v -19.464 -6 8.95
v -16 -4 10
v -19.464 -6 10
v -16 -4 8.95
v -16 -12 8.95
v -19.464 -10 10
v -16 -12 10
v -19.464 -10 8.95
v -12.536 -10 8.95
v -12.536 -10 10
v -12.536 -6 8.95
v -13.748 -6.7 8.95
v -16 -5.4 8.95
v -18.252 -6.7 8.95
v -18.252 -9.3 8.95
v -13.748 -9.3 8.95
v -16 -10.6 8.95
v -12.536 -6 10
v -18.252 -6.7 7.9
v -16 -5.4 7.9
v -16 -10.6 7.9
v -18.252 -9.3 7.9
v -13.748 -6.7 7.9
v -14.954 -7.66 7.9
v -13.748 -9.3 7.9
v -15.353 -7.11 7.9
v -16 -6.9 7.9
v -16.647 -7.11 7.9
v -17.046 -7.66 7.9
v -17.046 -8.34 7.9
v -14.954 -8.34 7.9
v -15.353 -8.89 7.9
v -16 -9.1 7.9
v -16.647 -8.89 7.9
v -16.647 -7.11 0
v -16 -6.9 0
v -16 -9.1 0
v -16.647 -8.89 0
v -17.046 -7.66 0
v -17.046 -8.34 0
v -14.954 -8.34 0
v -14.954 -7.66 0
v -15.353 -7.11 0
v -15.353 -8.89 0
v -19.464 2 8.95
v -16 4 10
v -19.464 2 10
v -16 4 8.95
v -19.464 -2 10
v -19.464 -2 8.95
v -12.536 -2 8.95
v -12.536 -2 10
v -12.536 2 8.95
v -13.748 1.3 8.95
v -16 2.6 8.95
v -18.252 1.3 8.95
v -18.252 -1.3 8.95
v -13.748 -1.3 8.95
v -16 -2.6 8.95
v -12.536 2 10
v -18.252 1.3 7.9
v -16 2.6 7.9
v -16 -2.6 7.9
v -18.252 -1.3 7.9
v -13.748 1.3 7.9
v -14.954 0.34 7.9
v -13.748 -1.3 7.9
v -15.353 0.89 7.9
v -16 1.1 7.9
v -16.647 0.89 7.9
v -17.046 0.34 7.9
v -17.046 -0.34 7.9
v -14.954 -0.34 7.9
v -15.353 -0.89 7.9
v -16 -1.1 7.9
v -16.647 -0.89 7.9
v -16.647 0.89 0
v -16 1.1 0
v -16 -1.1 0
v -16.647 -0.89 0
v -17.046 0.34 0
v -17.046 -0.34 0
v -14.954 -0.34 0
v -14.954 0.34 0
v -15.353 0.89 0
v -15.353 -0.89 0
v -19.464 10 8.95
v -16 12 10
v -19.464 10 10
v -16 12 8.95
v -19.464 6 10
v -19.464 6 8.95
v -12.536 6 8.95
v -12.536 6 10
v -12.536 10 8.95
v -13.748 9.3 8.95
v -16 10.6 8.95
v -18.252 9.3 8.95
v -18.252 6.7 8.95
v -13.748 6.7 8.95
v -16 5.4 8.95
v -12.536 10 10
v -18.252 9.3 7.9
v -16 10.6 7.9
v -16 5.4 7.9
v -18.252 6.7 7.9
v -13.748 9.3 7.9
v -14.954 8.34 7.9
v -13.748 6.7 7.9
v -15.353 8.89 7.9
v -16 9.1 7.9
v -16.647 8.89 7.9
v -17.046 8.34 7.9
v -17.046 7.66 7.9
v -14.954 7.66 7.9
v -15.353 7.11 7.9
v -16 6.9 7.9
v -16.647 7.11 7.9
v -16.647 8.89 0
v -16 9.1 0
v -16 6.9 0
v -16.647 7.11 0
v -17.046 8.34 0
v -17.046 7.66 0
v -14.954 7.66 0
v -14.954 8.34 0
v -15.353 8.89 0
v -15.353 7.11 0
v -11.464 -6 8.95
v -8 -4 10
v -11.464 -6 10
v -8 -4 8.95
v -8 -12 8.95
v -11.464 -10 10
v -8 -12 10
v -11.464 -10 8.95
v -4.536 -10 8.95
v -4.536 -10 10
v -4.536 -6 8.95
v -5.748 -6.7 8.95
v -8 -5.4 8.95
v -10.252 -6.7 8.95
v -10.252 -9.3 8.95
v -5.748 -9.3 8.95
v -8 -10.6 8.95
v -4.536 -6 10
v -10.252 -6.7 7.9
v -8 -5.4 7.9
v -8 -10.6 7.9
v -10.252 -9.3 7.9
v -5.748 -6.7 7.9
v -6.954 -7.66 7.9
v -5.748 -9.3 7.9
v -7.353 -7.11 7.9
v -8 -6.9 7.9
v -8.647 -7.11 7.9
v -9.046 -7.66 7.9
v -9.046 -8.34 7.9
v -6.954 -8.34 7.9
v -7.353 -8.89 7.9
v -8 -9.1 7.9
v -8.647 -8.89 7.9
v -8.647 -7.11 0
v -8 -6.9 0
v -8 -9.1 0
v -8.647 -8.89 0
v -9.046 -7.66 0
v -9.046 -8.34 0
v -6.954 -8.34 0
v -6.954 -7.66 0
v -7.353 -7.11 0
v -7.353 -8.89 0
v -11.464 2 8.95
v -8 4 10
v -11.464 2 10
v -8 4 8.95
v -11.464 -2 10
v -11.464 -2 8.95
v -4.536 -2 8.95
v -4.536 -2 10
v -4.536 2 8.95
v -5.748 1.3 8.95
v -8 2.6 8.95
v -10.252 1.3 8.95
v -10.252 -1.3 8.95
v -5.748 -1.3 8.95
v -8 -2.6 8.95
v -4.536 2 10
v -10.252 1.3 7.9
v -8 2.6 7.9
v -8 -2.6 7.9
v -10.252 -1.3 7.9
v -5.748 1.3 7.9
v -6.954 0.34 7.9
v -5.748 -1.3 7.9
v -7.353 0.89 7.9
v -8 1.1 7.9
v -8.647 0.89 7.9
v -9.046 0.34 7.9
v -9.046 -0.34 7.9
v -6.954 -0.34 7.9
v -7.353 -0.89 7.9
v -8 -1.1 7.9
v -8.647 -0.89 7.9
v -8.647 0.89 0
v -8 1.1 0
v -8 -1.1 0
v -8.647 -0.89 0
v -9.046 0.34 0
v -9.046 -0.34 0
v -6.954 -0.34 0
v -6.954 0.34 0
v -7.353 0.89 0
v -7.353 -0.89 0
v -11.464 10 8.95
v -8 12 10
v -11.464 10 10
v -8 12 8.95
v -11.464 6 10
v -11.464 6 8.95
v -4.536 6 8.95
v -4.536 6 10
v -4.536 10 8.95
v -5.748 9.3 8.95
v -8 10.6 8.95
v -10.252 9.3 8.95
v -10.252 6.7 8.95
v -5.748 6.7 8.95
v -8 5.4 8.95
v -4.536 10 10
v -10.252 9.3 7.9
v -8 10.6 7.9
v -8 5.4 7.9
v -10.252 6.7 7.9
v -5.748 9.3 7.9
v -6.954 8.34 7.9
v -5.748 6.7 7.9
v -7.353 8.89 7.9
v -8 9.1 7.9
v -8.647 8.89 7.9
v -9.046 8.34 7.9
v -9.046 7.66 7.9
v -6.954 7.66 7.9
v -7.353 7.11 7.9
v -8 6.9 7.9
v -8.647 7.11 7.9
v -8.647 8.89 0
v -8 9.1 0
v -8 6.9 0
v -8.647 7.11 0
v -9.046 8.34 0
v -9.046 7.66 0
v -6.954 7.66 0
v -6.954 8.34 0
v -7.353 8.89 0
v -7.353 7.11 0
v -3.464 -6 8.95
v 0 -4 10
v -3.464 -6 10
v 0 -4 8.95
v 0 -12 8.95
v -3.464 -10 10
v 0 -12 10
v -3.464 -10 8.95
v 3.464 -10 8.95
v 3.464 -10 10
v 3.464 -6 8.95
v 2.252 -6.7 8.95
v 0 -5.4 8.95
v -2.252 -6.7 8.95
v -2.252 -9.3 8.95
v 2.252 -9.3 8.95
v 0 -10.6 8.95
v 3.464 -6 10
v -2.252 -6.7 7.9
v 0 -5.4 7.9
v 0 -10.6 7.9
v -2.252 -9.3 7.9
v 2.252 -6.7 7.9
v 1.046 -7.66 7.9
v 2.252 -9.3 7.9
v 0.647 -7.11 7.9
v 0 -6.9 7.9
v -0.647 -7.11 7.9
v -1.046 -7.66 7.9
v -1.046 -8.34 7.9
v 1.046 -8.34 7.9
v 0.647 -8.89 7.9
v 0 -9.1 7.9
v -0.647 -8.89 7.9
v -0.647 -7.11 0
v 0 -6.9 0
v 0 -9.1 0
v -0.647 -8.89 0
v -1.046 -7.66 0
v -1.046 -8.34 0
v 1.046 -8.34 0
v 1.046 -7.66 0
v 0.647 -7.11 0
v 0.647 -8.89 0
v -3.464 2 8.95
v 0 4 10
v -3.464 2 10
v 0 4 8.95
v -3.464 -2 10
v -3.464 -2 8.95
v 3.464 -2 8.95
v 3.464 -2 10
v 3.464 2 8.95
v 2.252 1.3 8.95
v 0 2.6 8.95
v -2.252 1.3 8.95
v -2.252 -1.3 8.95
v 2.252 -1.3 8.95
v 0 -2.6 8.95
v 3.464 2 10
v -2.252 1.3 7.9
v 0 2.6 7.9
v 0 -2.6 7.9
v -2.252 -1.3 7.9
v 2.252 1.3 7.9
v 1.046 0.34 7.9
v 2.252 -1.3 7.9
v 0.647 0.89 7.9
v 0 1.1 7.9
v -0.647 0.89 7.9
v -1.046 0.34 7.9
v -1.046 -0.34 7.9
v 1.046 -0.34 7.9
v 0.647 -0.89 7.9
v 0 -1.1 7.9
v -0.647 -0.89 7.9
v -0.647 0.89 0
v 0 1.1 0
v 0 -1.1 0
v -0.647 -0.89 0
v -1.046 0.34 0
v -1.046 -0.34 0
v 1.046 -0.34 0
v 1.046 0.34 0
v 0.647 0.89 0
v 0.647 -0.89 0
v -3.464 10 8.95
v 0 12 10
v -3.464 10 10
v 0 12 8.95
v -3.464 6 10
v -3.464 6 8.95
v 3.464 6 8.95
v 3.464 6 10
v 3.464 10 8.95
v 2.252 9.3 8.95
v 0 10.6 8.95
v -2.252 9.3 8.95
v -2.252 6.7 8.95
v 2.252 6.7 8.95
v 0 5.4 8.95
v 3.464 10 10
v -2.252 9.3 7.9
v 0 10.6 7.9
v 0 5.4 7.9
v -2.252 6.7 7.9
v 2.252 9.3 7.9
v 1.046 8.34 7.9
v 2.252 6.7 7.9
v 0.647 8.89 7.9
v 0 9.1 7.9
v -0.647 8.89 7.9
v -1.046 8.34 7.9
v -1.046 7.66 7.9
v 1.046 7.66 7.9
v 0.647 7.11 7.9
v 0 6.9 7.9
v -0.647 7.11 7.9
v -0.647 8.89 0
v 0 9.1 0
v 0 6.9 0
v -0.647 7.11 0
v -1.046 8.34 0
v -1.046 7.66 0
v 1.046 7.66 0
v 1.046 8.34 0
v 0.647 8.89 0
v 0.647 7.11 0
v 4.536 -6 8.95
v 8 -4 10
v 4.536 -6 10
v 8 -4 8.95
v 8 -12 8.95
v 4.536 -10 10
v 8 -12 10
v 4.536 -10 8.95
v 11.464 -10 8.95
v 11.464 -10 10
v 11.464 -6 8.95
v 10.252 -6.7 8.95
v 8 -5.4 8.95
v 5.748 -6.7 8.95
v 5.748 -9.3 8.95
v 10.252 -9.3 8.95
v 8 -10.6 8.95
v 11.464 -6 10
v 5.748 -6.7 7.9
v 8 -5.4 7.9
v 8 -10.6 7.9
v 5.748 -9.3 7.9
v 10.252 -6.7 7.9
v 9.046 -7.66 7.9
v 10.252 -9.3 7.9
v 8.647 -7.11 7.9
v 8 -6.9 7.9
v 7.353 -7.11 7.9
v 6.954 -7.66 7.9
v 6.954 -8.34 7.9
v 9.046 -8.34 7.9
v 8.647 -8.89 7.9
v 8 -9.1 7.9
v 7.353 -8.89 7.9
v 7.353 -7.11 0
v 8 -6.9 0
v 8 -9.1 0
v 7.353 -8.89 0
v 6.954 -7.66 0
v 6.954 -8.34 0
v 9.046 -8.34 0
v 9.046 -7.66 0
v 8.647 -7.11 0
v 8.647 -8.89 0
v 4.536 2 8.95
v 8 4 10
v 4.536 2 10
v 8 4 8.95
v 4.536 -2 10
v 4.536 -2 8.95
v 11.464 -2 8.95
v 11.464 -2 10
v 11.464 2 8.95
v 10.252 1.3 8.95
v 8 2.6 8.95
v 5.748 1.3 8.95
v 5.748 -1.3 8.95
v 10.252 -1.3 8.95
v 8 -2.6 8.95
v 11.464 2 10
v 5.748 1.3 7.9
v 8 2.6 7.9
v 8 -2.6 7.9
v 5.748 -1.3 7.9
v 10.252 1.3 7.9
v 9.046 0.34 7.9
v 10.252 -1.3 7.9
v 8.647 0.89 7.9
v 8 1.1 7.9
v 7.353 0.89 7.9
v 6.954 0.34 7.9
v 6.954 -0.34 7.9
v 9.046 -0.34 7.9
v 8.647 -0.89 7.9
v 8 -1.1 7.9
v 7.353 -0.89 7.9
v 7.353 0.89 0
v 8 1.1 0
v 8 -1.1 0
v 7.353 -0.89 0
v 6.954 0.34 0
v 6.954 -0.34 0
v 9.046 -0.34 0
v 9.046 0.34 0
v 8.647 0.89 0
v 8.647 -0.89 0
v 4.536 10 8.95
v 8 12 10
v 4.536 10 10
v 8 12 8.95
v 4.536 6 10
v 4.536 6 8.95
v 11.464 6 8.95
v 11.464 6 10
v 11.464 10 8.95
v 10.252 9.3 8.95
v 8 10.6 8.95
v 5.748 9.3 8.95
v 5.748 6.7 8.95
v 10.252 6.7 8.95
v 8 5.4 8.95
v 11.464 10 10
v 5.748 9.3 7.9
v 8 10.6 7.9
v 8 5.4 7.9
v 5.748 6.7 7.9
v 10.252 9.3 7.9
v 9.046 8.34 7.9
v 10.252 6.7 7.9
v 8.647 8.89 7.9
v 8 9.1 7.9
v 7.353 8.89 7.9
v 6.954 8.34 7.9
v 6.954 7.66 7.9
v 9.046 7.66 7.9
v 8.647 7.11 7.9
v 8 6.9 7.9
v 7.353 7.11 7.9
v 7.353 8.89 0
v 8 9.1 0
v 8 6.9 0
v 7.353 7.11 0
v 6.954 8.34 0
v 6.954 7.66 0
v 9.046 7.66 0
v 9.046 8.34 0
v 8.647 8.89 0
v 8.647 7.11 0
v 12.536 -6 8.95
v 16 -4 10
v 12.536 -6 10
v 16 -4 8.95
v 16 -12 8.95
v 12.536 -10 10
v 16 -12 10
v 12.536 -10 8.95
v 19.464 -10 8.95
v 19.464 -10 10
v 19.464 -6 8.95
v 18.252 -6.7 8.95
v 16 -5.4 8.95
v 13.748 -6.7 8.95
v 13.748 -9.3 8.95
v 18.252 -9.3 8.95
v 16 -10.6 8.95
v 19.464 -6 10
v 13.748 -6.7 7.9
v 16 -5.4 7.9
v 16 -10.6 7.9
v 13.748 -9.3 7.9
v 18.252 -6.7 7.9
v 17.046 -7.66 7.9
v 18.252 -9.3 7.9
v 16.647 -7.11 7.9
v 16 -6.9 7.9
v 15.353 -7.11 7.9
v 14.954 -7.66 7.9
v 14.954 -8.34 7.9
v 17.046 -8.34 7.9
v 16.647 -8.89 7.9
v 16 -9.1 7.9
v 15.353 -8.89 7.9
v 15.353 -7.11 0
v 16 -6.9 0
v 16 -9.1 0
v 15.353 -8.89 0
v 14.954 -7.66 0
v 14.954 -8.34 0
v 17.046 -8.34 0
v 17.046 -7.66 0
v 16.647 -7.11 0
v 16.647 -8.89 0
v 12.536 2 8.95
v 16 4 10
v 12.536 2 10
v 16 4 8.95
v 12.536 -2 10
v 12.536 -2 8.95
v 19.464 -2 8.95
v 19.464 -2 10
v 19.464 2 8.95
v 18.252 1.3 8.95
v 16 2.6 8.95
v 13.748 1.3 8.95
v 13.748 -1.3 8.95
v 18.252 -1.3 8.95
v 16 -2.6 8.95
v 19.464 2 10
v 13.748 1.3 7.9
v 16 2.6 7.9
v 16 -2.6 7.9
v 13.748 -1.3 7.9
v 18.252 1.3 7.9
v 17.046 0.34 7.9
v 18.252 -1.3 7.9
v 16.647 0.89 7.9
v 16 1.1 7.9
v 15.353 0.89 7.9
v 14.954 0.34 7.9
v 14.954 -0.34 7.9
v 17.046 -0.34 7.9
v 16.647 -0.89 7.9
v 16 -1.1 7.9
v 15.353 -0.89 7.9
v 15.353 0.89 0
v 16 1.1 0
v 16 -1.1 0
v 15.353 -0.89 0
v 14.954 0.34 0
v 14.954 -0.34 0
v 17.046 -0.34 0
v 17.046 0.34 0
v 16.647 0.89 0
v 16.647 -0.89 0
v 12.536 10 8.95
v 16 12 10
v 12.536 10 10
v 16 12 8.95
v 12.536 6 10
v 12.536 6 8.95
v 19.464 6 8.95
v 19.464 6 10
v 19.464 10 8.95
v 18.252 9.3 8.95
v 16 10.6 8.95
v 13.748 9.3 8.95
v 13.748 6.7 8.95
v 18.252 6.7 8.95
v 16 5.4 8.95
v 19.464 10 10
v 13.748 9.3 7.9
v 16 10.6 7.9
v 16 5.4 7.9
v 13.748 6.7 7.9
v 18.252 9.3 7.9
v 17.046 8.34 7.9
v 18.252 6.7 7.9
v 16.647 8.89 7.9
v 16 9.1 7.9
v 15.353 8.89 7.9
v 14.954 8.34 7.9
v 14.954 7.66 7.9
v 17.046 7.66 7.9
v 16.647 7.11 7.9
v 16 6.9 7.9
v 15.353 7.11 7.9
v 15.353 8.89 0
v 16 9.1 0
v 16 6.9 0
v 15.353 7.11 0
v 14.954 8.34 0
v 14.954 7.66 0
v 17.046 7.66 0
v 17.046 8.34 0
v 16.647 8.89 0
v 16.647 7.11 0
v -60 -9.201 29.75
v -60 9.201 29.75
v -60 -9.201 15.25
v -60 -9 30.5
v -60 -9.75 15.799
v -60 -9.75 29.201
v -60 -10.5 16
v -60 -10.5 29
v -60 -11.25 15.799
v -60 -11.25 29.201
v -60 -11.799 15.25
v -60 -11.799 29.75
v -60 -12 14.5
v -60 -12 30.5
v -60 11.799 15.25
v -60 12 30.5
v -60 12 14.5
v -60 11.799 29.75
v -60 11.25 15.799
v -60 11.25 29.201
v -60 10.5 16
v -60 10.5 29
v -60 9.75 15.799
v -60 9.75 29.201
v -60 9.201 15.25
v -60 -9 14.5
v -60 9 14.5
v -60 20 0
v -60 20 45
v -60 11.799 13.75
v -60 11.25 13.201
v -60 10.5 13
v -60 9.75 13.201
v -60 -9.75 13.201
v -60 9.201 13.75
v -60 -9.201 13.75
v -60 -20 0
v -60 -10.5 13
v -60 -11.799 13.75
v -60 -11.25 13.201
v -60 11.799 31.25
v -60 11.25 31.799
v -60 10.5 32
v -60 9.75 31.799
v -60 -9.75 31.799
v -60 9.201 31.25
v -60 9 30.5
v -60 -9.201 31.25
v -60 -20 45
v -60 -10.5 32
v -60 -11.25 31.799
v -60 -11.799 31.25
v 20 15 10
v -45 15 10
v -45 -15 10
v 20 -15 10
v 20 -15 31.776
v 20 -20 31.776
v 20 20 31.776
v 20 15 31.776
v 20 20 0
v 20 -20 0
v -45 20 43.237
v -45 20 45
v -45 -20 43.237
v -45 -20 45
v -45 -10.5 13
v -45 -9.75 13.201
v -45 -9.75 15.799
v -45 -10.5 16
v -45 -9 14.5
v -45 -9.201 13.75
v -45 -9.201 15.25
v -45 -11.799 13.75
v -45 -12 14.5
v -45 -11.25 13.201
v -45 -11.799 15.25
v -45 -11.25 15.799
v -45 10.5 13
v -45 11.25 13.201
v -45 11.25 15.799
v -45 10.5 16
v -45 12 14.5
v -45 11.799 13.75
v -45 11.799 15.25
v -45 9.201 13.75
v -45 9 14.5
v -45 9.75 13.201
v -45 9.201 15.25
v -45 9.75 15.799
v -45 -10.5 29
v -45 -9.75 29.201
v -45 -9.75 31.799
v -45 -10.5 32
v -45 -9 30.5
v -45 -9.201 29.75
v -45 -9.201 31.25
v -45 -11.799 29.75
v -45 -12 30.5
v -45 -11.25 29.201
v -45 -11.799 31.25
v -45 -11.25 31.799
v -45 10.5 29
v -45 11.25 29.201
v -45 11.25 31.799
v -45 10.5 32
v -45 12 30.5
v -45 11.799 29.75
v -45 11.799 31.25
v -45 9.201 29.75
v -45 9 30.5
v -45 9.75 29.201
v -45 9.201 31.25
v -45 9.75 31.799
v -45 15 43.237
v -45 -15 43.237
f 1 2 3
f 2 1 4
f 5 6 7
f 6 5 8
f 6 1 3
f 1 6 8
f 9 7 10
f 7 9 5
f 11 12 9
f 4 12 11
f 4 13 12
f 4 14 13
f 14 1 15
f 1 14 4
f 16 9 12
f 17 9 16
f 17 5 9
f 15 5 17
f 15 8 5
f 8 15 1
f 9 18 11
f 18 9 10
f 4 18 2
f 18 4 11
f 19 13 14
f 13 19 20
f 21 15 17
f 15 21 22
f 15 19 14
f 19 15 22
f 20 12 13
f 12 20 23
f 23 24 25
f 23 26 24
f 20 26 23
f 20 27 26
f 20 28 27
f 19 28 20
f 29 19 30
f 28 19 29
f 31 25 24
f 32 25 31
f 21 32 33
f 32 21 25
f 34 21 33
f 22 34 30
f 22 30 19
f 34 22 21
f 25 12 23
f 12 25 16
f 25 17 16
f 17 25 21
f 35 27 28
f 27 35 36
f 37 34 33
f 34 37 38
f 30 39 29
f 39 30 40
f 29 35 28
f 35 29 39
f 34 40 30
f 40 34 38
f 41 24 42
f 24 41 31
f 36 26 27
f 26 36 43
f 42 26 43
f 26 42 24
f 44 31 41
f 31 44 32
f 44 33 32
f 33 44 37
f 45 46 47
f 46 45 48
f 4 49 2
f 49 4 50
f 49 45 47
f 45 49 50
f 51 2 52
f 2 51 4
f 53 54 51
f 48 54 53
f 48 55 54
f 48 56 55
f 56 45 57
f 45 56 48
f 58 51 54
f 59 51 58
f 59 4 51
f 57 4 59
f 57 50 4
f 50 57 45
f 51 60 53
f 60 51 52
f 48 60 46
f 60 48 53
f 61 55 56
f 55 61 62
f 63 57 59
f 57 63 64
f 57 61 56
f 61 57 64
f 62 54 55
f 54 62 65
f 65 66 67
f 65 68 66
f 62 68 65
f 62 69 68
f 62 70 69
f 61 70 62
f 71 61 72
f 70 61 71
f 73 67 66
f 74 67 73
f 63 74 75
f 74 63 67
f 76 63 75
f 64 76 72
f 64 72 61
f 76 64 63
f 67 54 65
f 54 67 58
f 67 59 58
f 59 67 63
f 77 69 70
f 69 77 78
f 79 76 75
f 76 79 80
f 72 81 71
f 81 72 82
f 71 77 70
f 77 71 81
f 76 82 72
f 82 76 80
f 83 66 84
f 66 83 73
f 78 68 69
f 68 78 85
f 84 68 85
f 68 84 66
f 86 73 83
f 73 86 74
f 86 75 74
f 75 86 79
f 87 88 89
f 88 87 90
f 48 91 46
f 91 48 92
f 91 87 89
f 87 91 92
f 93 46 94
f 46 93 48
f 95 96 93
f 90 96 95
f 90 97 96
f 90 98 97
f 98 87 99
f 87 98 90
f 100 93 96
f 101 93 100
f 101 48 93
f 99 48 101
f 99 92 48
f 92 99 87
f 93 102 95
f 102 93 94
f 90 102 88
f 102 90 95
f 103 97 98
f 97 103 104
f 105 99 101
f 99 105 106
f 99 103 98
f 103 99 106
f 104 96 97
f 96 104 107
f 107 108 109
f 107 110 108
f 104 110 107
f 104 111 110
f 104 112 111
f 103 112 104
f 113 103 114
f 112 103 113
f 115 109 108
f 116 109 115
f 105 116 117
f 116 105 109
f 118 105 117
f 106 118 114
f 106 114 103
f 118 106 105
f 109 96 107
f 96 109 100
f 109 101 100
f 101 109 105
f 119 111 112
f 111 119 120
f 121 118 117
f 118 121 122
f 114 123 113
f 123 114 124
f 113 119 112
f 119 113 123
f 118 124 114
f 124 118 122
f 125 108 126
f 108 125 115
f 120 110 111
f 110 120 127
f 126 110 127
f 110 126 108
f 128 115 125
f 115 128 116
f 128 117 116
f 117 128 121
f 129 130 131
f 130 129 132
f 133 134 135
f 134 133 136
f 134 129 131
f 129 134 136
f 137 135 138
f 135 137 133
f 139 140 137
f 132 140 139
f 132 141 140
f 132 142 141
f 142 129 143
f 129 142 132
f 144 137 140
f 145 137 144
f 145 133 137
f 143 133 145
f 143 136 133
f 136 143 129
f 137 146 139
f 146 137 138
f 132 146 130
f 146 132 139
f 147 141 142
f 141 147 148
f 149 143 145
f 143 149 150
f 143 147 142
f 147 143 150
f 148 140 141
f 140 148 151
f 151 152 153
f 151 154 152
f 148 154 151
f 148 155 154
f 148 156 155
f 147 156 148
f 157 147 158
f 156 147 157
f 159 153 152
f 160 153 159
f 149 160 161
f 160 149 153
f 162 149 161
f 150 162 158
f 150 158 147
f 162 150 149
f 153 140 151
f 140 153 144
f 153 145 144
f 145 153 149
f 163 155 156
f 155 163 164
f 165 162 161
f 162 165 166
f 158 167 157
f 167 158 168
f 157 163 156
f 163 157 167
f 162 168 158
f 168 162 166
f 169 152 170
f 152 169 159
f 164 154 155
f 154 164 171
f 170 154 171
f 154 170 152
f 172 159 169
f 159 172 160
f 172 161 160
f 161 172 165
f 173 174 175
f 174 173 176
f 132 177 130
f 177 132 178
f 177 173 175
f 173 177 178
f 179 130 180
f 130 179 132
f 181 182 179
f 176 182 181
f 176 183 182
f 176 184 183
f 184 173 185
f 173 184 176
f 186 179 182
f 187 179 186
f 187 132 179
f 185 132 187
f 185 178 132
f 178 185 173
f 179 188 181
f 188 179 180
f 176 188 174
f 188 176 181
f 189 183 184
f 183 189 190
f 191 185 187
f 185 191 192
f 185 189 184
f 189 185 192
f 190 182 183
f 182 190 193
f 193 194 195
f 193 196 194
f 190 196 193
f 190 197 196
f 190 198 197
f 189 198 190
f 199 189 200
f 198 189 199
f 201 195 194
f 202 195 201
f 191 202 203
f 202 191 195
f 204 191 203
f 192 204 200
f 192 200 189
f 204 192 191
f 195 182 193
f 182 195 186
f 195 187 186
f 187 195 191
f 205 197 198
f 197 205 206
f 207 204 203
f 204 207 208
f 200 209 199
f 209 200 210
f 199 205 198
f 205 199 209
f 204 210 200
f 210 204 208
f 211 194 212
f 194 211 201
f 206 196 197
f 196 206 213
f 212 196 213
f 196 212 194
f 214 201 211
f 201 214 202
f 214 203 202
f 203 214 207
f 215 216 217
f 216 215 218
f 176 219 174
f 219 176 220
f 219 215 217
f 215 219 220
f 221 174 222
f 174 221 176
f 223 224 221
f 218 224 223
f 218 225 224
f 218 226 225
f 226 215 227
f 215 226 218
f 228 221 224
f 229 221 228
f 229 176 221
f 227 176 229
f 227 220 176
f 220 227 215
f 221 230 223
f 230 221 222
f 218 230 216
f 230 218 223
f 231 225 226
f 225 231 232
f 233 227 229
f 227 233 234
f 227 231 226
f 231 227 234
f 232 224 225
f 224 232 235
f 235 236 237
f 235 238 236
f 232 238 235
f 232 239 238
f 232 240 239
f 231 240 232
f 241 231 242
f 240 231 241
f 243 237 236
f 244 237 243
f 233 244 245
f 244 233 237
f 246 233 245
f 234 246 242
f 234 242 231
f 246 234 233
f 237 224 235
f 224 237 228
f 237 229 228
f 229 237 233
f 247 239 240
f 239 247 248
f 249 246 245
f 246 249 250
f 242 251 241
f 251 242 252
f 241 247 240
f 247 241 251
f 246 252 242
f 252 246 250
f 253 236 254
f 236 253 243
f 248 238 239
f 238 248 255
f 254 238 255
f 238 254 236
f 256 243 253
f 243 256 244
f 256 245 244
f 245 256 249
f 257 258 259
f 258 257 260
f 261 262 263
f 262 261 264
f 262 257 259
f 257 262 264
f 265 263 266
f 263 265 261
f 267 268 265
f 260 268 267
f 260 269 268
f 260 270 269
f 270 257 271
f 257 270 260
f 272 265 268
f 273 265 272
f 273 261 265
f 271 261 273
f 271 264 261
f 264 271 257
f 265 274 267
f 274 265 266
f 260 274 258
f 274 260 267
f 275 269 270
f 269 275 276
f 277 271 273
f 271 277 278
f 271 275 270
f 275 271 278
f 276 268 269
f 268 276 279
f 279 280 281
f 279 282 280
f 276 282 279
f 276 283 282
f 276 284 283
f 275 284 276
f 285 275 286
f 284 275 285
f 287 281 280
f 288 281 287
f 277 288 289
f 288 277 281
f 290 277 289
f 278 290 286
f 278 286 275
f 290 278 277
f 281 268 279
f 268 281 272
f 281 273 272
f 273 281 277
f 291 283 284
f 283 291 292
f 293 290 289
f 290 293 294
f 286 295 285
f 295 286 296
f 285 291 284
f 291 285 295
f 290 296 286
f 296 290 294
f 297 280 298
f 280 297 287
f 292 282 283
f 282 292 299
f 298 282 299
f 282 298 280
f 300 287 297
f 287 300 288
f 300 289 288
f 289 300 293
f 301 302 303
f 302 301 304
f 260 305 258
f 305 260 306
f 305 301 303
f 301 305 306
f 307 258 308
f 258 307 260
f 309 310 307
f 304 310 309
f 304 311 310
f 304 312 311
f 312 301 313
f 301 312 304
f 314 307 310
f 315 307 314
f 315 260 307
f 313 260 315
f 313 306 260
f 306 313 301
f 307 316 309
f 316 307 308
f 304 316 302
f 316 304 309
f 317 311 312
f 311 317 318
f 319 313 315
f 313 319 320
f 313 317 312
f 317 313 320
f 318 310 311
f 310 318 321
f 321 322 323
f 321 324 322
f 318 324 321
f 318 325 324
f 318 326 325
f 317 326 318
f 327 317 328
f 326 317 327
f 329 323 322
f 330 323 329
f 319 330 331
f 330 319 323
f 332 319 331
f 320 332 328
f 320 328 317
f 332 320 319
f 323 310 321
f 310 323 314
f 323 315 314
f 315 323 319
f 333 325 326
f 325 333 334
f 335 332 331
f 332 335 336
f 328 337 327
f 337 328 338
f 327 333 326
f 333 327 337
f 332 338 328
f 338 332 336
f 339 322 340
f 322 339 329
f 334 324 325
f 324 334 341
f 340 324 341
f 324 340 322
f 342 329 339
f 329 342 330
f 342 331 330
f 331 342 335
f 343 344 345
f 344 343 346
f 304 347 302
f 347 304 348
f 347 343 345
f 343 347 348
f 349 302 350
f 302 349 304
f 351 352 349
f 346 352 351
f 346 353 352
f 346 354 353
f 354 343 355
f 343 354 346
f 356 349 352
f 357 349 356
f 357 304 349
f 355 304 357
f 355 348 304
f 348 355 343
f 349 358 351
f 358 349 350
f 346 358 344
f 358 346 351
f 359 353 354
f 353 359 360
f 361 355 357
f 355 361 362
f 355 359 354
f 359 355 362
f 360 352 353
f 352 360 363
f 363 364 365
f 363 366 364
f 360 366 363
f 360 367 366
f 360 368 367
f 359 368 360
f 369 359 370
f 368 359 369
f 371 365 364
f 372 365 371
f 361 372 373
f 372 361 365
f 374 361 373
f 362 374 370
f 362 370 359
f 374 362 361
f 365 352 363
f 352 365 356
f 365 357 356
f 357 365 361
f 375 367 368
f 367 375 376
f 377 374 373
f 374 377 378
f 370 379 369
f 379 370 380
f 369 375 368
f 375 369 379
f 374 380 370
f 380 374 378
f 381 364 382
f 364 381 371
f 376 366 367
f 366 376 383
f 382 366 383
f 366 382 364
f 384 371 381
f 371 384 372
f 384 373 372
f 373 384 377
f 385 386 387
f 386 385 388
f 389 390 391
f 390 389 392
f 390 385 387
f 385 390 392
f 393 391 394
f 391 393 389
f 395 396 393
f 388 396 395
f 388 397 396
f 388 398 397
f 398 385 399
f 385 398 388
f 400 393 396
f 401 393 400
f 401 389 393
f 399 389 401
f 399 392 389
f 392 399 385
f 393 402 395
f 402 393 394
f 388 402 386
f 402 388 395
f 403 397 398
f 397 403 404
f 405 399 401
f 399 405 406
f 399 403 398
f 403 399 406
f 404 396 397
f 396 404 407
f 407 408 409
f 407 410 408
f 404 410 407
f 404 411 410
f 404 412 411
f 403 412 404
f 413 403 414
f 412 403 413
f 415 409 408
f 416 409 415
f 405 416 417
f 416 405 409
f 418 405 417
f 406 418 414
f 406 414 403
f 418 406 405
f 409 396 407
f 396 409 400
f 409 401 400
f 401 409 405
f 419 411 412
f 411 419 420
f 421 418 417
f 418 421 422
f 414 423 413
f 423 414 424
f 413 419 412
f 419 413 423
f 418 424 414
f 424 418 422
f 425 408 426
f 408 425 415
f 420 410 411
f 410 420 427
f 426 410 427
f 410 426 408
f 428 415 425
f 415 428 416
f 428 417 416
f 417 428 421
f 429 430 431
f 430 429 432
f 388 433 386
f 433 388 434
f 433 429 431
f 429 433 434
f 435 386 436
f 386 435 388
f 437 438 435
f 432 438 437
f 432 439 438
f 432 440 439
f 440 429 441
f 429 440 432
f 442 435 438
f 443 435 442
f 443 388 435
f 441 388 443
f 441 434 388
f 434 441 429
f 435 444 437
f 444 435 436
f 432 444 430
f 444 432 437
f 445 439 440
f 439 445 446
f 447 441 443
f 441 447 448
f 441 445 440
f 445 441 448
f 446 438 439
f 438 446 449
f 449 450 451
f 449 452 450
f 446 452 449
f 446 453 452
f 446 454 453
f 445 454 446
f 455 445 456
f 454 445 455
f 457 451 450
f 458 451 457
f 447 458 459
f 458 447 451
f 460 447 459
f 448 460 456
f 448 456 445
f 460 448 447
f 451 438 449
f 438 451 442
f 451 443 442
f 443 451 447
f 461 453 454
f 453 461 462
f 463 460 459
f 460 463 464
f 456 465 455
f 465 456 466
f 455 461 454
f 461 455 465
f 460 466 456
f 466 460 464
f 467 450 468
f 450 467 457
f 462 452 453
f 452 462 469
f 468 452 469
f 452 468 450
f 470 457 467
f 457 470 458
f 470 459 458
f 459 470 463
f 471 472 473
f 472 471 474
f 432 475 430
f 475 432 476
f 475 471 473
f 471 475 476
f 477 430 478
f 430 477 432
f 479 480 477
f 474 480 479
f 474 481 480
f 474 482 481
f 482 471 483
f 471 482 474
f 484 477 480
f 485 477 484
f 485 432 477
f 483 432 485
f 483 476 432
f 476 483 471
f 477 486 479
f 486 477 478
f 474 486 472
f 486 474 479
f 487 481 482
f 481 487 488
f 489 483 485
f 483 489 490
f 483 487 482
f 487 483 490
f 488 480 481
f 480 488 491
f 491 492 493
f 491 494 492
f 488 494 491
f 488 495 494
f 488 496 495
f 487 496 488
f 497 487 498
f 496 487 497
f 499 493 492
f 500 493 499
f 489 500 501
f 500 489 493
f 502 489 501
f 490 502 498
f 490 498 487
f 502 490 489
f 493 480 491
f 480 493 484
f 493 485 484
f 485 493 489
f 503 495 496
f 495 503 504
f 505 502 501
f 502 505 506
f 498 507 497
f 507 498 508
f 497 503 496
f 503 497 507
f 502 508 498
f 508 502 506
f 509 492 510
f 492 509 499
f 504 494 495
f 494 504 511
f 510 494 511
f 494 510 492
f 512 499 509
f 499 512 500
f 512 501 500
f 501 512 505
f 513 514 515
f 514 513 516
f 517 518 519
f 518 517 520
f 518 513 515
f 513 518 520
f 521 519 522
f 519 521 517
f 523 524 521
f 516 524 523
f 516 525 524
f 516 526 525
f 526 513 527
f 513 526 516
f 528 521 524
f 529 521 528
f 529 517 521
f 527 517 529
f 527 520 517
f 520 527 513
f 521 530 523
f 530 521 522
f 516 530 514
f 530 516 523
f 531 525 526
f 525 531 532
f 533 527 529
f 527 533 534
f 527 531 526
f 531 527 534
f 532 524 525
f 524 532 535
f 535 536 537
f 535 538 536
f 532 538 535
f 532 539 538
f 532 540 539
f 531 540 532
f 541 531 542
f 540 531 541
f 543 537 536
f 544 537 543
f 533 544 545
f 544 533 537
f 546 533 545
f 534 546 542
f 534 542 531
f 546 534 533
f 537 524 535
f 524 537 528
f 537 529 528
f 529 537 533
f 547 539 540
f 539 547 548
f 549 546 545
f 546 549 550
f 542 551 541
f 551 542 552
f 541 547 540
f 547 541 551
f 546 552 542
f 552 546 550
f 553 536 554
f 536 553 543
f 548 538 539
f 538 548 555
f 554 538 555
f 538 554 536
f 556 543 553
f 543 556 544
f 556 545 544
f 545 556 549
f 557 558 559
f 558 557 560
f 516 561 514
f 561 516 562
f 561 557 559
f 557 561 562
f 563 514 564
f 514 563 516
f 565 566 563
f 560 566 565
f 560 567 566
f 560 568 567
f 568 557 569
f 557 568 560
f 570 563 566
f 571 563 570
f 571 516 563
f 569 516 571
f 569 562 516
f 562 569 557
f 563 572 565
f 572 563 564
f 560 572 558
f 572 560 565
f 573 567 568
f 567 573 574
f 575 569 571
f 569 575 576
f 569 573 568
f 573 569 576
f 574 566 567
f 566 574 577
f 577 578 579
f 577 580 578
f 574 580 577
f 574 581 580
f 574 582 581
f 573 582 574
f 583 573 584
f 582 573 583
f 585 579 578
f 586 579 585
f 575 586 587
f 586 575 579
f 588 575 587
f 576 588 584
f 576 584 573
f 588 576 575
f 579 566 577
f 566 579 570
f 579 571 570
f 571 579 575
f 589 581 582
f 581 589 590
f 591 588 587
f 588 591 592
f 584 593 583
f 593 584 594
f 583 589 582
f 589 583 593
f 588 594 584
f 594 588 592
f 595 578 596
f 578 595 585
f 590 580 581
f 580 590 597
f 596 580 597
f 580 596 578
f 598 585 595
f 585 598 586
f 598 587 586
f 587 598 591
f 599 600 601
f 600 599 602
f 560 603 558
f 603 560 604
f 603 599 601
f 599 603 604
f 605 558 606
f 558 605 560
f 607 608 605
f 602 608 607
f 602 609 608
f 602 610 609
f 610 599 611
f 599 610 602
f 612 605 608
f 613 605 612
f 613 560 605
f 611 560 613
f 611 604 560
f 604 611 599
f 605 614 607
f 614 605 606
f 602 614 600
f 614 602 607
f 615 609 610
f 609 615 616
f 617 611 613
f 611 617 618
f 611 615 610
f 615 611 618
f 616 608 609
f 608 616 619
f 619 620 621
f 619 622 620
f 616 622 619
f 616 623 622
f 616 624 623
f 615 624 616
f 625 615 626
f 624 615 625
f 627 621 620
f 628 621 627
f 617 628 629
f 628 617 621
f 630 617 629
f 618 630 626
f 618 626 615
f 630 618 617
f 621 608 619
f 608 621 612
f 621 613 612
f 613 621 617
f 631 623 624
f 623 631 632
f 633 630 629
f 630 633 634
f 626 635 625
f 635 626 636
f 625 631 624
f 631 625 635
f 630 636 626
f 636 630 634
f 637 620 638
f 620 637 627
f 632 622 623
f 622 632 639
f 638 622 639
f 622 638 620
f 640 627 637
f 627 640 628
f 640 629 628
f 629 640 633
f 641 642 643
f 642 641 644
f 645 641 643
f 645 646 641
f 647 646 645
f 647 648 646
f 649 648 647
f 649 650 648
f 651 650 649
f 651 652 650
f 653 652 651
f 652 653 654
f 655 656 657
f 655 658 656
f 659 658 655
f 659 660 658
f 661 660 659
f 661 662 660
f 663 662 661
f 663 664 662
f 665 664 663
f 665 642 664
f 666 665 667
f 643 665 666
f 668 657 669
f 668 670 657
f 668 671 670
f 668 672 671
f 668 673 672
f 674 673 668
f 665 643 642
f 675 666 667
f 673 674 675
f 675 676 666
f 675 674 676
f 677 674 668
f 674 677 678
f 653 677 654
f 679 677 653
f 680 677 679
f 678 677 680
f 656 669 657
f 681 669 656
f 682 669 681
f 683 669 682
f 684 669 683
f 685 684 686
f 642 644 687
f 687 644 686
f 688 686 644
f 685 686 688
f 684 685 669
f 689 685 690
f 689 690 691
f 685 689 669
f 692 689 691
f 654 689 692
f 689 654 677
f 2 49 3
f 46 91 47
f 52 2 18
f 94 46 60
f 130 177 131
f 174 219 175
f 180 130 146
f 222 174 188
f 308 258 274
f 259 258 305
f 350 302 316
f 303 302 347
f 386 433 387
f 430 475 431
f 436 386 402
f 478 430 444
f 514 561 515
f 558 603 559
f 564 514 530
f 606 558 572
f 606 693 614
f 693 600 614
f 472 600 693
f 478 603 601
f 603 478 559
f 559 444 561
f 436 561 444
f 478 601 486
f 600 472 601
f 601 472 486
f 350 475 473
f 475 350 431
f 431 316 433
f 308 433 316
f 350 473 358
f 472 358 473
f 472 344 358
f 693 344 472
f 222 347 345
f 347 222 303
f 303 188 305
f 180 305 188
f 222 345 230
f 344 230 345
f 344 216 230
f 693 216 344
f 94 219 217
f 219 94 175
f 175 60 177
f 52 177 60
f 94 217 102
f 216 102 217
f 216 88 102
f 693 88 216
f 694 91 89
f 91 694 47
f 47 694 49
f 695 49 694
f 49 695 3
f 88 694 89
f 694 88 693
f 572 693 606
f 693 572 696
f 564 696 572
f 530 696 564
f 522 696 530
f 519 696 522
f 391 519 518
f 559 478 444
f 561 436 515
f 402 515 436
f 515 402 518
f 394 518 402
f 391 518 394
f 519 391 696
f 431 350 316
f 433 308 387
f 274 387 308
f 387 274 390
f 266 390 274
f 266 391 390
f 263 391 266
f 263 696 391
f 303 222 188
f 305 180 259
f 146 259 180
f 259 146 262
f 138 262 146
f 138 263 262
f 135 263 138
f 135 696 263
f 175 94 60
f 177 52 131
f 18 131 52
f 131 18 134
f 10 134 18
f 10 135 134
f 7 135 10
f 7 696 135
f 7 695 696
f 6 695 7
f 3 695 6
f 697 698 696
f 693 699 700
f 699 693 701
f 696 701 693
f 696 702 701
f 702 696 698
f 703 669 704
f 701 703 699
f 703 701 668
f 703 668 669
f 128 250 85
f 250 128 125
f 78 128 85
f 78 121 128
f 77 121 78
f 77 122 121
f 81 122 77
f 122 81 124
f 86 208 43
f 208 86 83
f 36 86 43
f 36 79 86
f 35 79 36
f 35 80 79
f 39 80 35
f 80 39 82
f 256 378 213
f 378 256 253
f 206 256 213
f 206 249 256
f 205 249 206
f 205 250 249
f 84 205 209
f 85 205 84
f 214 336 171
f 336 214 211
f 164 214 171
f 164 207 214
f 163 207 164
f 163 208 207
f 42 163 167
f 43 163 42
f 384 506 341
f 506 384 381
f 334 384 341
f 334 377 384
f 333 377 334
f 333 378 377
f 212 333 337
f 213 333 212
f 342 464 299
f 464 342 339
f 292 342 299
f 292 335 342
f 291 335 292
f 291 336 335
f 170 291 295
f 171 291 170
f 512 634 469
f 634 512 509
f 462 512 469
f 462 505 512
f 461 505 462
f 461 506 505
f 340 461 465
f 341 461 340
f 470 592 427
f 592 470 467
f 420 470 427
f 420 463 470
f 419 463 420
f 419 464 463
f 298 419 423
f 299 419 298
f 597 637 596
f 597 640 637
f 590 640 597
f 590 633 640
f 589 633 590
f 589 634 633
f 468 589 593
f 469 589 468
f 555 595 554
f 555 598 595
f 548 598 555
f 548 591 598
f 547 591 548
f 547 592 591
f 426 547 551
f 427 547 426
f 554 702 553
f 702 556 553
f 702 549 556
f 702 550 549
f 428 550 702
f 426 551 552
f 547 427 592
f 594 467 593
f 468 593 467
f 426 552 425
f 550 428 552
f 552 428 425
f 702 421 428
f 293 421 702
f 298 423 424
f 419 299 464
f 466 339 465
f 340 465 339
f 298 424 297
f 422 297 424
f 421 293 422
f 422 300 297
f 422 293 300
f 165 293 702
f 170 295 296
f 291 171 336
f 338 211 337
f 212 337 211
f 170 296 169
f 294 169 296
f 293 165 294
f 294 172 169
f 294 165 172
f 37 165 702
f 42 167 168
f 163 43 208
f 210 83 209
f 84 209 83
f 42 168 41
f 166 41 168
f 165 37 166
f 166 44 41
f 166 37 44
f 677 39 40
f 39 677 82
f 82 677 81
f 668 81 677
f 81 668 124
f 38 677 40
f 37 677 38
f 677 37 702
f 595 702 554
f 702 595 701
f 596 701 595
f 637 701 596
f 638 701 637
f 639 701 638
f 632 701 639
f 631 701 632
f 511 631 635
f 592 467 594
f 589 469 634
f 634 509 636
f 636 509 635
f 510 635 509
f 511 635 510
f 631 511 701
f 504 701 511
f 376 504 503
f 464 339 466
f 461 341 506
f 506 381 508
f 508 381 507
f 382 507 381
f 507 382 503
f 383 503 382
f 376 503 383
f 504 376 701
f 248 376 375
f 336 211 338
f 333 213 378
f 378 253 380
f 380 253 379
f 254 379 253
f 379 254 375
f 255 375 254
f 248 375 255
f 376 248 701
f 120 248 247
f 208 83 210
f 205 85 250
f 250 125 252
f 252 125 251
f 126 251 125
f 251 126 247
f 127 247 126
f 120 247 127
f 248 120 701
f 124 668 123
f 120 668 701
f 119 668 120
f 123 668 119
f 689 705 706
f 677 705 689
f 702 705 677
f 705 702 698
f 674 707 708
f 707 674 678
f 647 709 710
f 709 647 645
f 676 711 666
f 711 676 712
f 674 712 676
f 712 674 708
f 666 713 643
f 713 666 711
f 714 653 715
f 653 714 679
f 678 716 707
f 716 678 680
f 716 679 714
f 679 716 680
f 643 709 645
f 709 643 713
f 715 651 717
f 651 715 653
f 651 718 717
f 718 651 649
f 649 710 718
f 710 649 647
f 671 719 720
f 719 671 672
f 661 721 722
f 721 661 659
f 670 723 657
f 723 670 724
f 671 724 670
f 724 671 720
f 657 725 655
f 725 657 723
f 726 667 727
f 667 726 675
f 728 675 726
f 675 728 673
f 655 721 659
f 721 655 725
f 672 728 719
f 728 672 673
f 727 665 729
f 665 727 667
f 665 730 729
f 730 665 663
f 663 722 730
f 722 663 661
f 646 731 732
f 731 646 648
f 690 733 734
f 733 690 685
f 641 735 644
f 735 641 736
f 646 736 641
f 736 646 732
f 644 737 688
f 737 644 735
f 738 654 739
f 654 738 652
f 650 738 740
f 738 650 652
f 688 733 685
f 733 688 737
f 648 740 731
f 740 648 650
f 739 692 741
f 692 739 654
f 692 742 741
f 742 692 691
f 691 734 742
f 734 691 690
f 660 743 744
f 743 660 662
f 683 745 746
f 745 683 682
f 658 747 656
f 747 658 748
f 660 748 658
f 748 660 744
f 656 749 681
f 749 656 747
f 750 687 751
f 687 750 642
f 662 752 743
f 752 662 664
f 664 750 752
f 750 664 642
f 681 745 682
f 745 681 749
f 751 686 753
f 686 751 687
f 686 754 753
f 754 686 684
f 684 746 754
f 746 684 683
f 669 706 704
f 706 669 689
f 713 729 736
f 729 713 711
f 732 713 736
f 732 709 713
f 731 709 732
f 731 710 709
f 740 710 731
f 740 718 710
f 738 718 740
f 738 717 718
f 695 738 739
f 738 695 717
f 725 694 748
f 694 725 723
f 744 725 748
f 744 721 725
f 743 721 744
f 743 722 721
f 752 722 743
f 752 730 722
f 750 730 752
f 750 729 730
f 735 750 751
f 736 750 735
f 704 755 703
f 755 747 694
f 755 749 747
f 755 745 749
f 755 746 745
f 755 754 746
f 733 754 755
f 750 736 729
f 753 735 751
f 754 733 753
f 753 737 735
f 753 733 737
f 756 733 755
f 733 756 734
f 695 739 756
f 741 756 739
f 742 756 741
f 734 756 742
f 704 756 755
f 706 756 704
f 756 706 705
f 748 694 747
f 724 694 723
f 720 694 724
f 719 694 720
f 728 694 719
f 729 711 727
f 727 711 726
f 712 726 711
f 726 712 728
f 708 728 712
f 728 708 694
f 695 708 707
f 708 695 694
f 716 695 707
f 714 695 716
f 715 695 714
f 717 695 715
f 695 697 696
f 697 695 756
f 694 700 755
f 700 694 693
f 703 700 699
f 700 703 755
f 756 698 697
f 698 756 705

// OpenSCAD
module cart_plate() {
    h = 6;
    plate_outside_radius = 13;
    plate_separation = 4+29;
    plate_spacing = 25+9;
  difference() {
    linear_extrude(height=h) difference() {
    minkowski() {
      square([0.1+plate_separation, 0.1+plate_spacing], center=true);
      circle(r=plate_outside_radius-0.05, $fn=36);
    }
    } //diff
    // holes
    for (y = [-16/2, 16/2]) {
      for (x = [-21/2, 21/2]) {
        translate([x, y, -1])
          cylinder(r=1.5,h=10, $fn=12);
      }
    } //for
    // hex nuts
    for (y = [-16/2, 16/2]) {
      for (x = [-21/2, 21/2]) {
          translate([x, y, 2])
        cylinder(r=3.3, h=15, $fn=6); // with 3.2 hole I had to hammer the nuts into them
      }
    } //for
  } //diff
} //module


module bracket_u() {
    // 
    rotate([0,0,90]) translate([-25/2,-38/2,(8+11)]) union() {
        difference() { // main plate
            cube( [25,38,7] ); // plate
            translate([9,14,-0.1]) cube( [7,10,8] ); // middle rect hole
        }
        // side 1
        translate([0,-5.5,-8]) cube([25,5.5,2+8]);
        translate([1.5,-5.5,-19]) cube([22,3,11]);
        translate([25/2,-5.5+3,-8-11]) rotate( [90,0,0] ) cylinder(r=11,h=3);
        // side 2
        translate( [25,38,0] ) rotate([0,0,180]) {
            translate([0,-5.5,-8]) cube([25,5.5,2+8]);
            translate([1.5,-5.5,-19]) cube([22,3,11]);
            translate([25/2,-5.5+3,-8-11]) rotate( [90,0,0] ) cylinder(r=11,h=3);
        }
    }
}

//translate( [-63,0,20+5] ) rotate( [90,0,-90] )  cart_plate();

//translate( [0,0,-26-3] ) bracket_u();

size_y = 40;
size_z = 10;
size_x = 80;

vert_x = 21-6; 
vert_z = 45;
translate( [-60,-size_y/2,0] ) {
   union() {
        // ------ main plate -----
        difference() {
            cube([size_x,size_y,size_z]);
            
            hole_quality=10;
        //    length = 23+5;
            hole = 2; // M2 = 2, M3 = 3
            // hex nuts
            translate( [size_x-12,size_y/2,size_z-2] ) {
                for( i = [-24,-16,-8,0,8] )
                    for( j= [-8,0,8 ] )
                        translate([i, j, 2]) rotate( [0,0,90] )
                        {
                            translate([0,0,-0.5]) cylinder( r=2*hole, h=1.1, center=true, $fn=6 );
                            translate([0,0,-1]) cylinder( r=1.3*hole, h=2.2,center=true, $fn=6); // hex nut
                            translate([0,0,-size_z/2]) cylinder(r=1.1,h=size_z+0.2,center=true,$fn=hole_quality);
                        }
            }
        } // diff
        
        // vertical plate
        difference() {
            cube([vert_x,size_y,vert_z]);
            for (y = [-16/2, 16/2]) {
                for (x = [-21/2, 21/2]) {
                    translate([-1, size_y/2+x, vert_z/2+y])
                        rotate( [0,90,0] ) cylinder(r=1.5,h=vert_x+2, $fn=12);
                }
            } //for
        }
        
        difference() {
            union() {
            cube( [size_x, 5, vert_z] );
            translate([0,size_y-5,0]) cube( [size_x, 5, vert_z] );
            }
            translate( [0+5, -1, vert_z] ) rotate( [0,10,0] ) cube( [size_x,size_y+2,20] );
        }
        // ------- side supports ------
        
    
    } // union
}
